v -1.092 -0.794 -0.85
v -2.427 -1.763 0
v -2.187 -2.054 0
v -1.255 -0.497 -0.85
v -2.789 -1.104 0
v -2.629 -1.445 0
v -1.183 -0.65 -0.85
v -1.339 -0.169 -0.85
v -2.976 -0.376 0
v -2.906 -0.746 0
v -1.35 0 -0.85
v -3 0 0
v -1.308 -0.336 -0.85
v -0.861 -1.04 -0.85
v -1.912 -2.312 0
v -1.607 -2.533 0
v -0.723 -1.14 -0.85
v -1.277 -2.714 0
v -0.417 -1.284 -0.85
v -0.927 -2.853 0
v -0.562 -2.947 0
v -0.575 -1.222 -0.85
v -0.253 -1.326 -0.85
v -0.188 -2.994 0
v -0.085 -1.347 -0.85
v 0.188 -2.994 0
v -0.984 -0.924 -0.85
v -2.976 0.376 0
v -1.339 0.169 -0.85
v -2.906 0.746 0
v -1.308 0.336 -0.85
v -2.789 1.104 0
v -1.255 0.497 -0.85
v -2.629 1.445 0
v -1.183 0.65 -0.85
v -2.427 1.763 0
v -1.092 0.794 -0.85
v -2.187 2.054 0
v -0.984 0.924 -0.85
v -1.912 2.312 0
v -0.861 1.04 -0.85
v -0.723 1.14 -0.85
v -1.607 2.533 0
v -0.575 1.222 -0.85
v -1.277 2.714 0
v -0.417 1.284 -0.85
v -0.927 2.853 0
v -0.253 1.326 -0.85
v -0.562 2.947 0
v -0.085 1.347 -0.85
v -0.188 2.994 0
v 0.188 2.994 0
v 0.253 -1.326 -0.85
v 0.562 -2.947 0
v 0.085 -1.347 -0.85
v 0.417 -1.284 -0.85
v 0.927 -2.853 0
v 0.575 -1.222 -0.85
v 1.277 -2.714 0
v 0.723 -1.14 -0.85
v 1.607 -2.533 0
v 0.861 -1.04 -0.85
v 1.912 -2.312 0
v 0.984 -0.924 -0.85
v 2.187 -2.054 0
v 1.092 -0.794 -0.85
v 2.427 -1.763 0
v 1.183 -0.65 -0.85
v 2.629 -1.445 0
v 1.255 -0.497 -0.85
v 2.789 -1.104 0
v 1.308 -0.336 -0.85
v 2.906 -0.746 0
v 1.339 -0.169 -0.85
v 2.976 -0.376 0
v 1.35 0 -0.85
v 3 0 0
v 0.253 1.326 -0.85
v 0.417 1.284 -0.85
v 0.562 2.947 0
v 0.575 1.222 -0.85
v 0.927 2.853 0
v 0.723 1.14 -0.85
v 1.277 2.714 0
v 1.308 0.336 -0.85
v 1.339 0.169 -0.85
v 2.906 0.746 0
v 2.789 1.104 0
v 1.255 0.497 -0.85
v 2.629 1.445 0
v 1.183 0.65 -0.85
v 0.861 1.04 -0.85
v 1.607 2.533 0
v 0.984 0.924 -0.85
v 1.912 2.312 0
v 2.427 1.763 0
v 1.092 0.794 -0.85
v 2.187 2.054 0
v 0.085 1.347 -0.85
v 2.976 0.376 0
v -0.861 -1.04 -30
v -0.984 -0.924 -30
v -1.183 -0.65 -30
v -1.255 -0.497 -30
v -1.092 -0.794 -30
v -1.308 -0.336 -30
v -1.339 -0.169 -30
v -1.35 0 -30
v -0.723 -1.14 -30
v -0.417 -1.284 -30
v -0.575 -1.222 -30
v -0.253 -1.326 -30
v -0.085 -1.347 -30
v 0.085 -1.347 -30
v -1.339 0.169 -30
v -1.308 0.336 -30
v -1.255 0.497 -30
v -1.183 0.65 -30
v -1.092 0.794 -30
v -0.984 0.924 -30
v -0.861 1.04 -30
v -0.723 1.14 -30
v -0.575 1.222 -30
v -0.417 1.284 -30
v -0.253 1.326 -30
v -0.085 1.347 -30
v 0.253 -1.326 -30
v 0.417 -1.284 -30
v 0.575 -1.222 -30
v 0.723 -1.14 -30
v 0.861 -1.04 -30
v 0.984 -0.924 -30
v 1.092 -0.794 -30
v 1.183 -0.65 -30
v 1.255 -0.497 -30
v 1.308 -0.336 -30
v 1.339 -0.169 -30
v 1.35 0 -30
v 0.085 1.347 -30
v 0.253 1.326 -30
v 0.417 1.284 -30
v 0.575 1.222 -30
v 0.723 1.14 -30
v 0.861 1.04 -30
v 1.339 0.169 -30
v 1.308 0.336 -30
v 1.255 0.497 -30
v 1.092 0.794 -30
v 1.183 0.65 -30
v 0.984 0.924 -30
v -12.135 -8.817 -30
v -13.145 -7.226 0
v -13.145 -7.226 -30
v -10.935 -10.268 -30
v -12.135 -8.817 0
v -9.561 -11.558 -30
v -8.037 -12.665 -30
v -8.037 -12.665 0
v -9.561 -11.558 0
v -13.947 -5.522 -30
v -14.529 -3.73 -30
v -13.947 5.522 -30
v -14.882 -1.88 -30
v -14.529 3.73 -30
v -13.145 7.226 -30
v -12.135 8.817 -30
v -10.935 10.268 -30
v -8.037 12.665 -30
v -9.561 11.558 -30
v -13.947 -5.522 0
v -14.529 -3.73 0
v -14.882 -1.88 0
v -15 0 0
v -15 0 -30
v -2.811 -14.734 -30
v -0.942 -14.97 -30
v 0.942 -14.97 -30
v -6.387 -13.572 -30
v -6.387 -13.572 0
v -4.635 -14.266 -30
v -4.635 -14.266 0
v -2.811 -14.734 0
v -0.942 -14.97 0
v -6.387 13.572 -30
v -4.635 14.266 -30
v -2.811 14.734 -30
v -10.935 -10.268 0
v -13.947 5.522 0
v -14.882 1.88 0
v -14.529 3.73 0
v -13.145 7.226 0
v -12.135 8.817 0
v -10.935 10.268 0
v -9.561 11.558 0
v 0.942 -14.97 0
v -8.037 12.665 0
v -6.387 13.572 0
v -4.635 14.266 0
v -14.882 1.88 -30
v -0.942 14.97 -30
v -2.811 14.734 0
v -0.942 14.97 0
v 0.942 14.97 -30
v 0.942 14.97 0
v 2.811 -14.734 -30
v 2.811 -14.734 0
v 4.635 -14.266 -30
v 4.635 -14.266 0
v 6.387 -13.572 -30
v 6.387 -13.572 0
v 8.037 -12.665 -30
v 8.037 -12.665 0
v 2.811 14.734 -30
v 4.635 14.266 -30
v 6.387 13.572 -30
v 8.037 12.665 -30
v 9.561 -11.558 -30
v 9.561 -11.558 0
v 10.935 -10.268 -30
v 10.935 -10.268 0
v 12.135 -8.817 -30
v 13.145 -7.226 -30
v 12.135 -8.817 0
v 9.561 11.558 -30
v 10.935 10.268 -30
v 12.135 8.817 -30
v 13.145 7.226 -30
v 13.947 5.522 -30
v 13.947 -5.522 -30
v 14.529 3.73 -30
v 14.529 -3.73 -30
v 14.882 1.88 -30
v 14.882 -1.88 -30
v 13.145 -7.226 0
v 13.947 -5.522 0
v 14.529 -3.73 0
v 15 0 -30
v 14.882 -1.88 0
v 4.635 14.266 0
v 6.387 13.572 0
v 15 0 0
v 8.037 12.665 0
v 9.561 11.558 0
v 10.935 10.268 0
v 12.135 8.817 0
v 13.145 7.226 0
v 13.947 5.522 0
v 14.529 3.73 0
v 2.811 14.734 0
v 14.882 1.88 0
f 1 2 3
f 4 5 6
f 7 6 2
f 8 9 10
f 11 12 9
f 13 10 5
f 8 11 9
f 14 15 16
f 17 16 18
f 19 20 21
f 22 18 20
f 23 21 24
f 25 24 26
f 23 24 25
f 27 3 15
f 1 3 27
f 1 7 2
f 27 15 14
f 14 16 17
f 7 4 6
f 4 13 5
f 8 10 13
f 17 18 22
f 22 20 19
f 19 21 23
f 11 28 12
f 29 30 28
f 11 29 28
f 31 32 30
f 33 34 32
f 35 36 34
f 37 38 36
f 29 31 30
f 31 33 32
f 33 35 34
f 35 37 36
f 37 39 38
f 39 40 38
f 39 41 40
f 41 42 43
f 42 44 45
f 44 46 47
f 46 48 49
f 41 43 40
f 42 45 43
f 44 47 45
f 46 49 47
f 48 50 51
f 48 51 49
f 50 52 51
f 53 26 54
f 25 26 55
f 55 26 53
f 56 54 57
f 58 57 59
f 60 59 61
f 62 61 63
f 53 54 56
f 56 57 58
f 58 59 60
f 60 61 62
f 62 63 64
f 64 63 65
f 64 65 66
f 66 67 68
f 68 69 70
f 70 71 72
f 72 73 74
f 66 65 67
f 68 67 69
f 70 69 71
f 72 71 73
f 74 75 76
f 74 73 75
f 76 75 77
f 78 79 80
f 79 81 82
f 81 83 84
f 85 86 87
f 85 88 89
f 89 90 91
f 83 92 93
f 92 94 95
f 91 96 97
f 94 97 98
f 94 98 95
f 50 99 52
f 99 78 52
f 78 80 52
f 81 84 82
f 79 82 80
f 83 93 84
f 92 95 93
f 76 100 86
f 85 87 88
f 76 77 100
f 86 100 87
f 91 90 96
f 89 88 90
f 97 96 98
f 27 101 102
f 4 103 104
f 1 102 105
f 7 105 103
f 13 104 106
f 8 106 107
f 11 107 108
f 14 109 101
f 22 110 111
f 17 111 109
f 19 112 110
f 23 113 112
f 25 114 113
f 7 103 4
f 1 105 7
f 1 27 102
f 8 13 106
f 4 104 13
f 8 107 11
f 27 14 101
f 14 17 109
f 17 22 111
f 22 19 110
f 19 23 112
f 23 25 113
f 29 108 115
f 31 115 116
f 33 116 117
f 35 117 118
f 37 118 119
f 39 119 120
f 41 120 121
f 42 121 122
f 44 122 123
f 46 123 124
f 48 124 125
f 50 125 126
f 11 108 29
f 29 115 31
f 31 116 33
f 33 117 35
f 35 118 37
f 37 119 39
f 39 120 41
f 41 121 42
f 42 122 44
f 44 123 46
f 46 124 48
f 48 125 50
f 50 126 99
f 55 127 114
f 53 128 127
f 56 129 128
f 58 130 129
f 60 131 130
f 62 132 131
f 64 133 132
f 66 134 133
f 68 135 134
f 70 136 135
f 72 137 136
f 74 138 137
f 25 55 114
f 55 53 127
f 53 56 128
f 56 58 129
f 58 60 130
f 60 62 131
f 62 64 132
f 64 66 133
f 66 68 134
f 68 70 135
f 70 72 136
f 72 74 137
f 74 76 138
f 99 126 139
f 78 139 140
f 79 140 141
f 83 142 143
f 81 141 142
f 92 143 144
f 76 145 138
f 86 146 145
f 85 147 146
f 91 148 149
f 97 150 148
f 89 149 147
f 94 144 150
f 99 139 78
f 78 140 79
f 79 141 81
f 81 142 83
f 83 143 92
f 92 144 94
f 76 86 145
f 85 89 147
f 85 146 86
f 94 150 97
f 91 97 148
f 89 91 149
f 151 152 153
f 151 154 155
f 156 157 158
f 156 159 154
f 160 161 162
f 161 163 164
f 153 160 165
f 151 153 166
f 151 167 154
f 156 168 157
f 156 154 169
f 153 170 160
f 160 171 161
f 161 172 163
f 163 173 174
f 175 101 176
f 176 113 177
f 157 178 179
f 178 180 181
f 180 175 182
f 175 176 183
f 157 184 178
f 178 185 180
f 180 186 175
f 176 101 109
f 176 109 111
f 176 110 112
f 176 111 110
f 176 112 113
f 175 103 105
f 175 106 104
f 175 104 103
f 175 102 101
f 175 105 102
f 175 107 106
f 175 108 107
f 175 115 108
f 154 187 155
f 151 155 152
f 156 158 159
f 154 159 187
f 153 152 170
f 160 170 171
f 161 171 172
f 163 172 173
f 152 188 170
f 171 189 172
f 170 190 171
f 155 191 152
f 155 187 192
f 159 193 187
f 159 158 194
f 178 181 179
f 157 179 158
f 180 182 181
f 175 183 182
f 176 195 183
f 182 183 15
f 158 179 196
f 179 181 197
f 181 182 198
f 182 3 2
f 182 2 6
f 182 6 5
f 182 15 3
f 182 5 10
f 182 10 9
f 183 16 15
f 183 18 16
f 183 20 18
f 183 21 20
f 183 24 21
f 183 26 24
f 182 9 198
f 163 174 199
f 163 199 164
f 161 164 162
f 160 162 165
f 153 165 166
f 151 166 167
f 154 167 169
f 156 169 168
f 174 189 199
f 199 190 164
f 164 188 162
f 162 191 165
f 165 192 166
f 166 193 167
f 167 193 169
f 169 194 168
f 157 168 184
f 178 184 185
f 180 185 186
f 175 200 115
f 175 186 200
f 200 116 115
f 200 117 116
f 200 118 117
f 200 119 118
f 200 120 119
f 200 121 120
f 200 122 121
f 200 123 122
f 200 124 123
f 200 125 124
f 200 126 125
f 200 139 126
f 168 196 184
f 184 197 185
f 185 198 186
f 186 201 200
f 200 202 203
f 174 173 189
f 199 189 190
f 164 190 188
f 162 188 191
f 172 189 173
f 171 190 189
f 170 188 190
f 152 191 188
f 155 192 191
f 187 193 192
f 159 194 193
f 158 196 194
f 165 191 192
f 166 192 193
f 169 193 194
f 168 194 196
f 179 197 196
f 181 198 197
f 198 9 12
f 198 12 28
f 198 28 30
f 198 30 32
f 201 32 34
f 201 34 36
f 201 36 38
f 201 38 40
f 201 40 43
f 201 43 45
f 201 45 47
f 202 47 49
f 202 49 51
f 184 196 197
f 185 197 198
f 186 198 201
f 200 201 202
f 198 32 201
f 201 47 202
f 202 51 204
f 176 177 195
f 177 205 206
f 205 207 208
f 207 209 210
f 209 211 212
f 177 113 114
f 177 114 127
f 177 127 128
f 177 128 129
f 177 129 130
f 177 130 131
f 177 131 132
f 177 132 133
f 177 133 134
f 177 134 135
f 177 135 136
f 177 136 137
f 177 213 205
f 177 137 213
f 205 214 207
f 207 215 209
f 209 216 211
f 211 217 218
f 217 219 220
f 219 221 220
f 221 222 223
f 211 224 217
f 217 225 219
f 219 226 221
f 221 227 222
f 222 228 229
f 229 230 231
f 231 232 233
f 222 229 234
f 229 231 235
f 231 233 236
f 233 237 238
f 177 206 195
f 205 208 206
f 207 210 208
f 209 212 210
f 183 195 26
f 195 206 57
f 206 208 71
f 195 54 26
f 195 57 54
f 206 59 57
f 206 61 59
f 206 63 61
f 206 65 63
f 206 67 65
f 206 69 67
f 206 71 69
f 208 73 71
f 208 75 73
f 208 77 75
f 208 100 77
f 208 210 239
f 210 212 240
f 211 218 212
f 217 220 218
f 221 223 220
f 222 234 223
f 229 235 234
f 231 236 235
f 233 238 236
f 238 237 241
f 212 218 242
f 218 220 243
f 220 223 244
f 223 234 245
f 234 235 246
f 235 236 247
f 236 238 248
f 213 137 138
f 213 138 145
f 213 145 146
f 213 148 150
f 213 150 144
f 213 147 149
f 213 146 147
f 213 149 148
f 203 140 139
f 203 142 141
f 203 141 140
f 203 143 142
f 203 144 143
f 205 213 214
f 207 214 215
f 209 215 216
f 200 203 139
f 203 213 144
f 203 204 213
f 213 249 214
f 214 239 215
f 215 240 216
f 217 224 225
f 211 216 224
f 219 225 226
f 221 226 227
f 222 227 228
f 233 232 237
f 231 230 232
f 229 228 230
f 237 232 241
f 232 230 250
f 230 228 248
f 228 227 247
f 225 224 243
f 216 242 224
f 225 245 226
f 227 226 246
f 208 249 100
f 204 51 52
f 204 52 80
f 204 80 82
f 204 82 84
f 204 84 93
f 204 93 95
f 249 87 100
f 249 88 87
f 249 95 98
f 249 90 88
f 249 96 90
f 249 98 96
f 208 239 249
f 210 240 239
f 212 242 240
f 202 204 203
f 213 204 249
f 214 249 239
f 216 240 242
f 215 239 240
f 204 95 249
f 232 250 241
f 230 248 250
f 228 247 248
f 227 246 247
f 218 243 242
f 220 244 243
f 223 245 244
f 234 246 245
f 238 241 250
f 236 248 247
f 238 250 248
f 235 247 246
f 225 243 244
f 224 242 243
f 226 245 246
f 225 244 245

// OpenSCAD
$fn = 50;

difference() {
	union() {
		translate(v = [0, 0, -30.0]) {
			cylinder(h = 30, r = 15.0);
		}
	}
	union() {
		translate(v = [0, 0, 0]) {
			rotate(a = [0, 0, 0]) {
				difference() {
					union() {
						translate(v = [0, 0, -33.0]) {
							cylinder(h = 33, r = 1.0);
						}
						translate(v = [0, 0, -0.85]) {
							cylinder(h = 0.85, r1 = 1.35, r2 = 3.0);
						}
						translate(v = [0, 0, -33.0]) {
							cylinder(h = 33, r = 1.35);
						}
						translate(v = [0, 0, -33.0]) {
							cylinder(h = 33, r = 1.0);
						}
					}
					union();
				}
			}
		}
	}
}
